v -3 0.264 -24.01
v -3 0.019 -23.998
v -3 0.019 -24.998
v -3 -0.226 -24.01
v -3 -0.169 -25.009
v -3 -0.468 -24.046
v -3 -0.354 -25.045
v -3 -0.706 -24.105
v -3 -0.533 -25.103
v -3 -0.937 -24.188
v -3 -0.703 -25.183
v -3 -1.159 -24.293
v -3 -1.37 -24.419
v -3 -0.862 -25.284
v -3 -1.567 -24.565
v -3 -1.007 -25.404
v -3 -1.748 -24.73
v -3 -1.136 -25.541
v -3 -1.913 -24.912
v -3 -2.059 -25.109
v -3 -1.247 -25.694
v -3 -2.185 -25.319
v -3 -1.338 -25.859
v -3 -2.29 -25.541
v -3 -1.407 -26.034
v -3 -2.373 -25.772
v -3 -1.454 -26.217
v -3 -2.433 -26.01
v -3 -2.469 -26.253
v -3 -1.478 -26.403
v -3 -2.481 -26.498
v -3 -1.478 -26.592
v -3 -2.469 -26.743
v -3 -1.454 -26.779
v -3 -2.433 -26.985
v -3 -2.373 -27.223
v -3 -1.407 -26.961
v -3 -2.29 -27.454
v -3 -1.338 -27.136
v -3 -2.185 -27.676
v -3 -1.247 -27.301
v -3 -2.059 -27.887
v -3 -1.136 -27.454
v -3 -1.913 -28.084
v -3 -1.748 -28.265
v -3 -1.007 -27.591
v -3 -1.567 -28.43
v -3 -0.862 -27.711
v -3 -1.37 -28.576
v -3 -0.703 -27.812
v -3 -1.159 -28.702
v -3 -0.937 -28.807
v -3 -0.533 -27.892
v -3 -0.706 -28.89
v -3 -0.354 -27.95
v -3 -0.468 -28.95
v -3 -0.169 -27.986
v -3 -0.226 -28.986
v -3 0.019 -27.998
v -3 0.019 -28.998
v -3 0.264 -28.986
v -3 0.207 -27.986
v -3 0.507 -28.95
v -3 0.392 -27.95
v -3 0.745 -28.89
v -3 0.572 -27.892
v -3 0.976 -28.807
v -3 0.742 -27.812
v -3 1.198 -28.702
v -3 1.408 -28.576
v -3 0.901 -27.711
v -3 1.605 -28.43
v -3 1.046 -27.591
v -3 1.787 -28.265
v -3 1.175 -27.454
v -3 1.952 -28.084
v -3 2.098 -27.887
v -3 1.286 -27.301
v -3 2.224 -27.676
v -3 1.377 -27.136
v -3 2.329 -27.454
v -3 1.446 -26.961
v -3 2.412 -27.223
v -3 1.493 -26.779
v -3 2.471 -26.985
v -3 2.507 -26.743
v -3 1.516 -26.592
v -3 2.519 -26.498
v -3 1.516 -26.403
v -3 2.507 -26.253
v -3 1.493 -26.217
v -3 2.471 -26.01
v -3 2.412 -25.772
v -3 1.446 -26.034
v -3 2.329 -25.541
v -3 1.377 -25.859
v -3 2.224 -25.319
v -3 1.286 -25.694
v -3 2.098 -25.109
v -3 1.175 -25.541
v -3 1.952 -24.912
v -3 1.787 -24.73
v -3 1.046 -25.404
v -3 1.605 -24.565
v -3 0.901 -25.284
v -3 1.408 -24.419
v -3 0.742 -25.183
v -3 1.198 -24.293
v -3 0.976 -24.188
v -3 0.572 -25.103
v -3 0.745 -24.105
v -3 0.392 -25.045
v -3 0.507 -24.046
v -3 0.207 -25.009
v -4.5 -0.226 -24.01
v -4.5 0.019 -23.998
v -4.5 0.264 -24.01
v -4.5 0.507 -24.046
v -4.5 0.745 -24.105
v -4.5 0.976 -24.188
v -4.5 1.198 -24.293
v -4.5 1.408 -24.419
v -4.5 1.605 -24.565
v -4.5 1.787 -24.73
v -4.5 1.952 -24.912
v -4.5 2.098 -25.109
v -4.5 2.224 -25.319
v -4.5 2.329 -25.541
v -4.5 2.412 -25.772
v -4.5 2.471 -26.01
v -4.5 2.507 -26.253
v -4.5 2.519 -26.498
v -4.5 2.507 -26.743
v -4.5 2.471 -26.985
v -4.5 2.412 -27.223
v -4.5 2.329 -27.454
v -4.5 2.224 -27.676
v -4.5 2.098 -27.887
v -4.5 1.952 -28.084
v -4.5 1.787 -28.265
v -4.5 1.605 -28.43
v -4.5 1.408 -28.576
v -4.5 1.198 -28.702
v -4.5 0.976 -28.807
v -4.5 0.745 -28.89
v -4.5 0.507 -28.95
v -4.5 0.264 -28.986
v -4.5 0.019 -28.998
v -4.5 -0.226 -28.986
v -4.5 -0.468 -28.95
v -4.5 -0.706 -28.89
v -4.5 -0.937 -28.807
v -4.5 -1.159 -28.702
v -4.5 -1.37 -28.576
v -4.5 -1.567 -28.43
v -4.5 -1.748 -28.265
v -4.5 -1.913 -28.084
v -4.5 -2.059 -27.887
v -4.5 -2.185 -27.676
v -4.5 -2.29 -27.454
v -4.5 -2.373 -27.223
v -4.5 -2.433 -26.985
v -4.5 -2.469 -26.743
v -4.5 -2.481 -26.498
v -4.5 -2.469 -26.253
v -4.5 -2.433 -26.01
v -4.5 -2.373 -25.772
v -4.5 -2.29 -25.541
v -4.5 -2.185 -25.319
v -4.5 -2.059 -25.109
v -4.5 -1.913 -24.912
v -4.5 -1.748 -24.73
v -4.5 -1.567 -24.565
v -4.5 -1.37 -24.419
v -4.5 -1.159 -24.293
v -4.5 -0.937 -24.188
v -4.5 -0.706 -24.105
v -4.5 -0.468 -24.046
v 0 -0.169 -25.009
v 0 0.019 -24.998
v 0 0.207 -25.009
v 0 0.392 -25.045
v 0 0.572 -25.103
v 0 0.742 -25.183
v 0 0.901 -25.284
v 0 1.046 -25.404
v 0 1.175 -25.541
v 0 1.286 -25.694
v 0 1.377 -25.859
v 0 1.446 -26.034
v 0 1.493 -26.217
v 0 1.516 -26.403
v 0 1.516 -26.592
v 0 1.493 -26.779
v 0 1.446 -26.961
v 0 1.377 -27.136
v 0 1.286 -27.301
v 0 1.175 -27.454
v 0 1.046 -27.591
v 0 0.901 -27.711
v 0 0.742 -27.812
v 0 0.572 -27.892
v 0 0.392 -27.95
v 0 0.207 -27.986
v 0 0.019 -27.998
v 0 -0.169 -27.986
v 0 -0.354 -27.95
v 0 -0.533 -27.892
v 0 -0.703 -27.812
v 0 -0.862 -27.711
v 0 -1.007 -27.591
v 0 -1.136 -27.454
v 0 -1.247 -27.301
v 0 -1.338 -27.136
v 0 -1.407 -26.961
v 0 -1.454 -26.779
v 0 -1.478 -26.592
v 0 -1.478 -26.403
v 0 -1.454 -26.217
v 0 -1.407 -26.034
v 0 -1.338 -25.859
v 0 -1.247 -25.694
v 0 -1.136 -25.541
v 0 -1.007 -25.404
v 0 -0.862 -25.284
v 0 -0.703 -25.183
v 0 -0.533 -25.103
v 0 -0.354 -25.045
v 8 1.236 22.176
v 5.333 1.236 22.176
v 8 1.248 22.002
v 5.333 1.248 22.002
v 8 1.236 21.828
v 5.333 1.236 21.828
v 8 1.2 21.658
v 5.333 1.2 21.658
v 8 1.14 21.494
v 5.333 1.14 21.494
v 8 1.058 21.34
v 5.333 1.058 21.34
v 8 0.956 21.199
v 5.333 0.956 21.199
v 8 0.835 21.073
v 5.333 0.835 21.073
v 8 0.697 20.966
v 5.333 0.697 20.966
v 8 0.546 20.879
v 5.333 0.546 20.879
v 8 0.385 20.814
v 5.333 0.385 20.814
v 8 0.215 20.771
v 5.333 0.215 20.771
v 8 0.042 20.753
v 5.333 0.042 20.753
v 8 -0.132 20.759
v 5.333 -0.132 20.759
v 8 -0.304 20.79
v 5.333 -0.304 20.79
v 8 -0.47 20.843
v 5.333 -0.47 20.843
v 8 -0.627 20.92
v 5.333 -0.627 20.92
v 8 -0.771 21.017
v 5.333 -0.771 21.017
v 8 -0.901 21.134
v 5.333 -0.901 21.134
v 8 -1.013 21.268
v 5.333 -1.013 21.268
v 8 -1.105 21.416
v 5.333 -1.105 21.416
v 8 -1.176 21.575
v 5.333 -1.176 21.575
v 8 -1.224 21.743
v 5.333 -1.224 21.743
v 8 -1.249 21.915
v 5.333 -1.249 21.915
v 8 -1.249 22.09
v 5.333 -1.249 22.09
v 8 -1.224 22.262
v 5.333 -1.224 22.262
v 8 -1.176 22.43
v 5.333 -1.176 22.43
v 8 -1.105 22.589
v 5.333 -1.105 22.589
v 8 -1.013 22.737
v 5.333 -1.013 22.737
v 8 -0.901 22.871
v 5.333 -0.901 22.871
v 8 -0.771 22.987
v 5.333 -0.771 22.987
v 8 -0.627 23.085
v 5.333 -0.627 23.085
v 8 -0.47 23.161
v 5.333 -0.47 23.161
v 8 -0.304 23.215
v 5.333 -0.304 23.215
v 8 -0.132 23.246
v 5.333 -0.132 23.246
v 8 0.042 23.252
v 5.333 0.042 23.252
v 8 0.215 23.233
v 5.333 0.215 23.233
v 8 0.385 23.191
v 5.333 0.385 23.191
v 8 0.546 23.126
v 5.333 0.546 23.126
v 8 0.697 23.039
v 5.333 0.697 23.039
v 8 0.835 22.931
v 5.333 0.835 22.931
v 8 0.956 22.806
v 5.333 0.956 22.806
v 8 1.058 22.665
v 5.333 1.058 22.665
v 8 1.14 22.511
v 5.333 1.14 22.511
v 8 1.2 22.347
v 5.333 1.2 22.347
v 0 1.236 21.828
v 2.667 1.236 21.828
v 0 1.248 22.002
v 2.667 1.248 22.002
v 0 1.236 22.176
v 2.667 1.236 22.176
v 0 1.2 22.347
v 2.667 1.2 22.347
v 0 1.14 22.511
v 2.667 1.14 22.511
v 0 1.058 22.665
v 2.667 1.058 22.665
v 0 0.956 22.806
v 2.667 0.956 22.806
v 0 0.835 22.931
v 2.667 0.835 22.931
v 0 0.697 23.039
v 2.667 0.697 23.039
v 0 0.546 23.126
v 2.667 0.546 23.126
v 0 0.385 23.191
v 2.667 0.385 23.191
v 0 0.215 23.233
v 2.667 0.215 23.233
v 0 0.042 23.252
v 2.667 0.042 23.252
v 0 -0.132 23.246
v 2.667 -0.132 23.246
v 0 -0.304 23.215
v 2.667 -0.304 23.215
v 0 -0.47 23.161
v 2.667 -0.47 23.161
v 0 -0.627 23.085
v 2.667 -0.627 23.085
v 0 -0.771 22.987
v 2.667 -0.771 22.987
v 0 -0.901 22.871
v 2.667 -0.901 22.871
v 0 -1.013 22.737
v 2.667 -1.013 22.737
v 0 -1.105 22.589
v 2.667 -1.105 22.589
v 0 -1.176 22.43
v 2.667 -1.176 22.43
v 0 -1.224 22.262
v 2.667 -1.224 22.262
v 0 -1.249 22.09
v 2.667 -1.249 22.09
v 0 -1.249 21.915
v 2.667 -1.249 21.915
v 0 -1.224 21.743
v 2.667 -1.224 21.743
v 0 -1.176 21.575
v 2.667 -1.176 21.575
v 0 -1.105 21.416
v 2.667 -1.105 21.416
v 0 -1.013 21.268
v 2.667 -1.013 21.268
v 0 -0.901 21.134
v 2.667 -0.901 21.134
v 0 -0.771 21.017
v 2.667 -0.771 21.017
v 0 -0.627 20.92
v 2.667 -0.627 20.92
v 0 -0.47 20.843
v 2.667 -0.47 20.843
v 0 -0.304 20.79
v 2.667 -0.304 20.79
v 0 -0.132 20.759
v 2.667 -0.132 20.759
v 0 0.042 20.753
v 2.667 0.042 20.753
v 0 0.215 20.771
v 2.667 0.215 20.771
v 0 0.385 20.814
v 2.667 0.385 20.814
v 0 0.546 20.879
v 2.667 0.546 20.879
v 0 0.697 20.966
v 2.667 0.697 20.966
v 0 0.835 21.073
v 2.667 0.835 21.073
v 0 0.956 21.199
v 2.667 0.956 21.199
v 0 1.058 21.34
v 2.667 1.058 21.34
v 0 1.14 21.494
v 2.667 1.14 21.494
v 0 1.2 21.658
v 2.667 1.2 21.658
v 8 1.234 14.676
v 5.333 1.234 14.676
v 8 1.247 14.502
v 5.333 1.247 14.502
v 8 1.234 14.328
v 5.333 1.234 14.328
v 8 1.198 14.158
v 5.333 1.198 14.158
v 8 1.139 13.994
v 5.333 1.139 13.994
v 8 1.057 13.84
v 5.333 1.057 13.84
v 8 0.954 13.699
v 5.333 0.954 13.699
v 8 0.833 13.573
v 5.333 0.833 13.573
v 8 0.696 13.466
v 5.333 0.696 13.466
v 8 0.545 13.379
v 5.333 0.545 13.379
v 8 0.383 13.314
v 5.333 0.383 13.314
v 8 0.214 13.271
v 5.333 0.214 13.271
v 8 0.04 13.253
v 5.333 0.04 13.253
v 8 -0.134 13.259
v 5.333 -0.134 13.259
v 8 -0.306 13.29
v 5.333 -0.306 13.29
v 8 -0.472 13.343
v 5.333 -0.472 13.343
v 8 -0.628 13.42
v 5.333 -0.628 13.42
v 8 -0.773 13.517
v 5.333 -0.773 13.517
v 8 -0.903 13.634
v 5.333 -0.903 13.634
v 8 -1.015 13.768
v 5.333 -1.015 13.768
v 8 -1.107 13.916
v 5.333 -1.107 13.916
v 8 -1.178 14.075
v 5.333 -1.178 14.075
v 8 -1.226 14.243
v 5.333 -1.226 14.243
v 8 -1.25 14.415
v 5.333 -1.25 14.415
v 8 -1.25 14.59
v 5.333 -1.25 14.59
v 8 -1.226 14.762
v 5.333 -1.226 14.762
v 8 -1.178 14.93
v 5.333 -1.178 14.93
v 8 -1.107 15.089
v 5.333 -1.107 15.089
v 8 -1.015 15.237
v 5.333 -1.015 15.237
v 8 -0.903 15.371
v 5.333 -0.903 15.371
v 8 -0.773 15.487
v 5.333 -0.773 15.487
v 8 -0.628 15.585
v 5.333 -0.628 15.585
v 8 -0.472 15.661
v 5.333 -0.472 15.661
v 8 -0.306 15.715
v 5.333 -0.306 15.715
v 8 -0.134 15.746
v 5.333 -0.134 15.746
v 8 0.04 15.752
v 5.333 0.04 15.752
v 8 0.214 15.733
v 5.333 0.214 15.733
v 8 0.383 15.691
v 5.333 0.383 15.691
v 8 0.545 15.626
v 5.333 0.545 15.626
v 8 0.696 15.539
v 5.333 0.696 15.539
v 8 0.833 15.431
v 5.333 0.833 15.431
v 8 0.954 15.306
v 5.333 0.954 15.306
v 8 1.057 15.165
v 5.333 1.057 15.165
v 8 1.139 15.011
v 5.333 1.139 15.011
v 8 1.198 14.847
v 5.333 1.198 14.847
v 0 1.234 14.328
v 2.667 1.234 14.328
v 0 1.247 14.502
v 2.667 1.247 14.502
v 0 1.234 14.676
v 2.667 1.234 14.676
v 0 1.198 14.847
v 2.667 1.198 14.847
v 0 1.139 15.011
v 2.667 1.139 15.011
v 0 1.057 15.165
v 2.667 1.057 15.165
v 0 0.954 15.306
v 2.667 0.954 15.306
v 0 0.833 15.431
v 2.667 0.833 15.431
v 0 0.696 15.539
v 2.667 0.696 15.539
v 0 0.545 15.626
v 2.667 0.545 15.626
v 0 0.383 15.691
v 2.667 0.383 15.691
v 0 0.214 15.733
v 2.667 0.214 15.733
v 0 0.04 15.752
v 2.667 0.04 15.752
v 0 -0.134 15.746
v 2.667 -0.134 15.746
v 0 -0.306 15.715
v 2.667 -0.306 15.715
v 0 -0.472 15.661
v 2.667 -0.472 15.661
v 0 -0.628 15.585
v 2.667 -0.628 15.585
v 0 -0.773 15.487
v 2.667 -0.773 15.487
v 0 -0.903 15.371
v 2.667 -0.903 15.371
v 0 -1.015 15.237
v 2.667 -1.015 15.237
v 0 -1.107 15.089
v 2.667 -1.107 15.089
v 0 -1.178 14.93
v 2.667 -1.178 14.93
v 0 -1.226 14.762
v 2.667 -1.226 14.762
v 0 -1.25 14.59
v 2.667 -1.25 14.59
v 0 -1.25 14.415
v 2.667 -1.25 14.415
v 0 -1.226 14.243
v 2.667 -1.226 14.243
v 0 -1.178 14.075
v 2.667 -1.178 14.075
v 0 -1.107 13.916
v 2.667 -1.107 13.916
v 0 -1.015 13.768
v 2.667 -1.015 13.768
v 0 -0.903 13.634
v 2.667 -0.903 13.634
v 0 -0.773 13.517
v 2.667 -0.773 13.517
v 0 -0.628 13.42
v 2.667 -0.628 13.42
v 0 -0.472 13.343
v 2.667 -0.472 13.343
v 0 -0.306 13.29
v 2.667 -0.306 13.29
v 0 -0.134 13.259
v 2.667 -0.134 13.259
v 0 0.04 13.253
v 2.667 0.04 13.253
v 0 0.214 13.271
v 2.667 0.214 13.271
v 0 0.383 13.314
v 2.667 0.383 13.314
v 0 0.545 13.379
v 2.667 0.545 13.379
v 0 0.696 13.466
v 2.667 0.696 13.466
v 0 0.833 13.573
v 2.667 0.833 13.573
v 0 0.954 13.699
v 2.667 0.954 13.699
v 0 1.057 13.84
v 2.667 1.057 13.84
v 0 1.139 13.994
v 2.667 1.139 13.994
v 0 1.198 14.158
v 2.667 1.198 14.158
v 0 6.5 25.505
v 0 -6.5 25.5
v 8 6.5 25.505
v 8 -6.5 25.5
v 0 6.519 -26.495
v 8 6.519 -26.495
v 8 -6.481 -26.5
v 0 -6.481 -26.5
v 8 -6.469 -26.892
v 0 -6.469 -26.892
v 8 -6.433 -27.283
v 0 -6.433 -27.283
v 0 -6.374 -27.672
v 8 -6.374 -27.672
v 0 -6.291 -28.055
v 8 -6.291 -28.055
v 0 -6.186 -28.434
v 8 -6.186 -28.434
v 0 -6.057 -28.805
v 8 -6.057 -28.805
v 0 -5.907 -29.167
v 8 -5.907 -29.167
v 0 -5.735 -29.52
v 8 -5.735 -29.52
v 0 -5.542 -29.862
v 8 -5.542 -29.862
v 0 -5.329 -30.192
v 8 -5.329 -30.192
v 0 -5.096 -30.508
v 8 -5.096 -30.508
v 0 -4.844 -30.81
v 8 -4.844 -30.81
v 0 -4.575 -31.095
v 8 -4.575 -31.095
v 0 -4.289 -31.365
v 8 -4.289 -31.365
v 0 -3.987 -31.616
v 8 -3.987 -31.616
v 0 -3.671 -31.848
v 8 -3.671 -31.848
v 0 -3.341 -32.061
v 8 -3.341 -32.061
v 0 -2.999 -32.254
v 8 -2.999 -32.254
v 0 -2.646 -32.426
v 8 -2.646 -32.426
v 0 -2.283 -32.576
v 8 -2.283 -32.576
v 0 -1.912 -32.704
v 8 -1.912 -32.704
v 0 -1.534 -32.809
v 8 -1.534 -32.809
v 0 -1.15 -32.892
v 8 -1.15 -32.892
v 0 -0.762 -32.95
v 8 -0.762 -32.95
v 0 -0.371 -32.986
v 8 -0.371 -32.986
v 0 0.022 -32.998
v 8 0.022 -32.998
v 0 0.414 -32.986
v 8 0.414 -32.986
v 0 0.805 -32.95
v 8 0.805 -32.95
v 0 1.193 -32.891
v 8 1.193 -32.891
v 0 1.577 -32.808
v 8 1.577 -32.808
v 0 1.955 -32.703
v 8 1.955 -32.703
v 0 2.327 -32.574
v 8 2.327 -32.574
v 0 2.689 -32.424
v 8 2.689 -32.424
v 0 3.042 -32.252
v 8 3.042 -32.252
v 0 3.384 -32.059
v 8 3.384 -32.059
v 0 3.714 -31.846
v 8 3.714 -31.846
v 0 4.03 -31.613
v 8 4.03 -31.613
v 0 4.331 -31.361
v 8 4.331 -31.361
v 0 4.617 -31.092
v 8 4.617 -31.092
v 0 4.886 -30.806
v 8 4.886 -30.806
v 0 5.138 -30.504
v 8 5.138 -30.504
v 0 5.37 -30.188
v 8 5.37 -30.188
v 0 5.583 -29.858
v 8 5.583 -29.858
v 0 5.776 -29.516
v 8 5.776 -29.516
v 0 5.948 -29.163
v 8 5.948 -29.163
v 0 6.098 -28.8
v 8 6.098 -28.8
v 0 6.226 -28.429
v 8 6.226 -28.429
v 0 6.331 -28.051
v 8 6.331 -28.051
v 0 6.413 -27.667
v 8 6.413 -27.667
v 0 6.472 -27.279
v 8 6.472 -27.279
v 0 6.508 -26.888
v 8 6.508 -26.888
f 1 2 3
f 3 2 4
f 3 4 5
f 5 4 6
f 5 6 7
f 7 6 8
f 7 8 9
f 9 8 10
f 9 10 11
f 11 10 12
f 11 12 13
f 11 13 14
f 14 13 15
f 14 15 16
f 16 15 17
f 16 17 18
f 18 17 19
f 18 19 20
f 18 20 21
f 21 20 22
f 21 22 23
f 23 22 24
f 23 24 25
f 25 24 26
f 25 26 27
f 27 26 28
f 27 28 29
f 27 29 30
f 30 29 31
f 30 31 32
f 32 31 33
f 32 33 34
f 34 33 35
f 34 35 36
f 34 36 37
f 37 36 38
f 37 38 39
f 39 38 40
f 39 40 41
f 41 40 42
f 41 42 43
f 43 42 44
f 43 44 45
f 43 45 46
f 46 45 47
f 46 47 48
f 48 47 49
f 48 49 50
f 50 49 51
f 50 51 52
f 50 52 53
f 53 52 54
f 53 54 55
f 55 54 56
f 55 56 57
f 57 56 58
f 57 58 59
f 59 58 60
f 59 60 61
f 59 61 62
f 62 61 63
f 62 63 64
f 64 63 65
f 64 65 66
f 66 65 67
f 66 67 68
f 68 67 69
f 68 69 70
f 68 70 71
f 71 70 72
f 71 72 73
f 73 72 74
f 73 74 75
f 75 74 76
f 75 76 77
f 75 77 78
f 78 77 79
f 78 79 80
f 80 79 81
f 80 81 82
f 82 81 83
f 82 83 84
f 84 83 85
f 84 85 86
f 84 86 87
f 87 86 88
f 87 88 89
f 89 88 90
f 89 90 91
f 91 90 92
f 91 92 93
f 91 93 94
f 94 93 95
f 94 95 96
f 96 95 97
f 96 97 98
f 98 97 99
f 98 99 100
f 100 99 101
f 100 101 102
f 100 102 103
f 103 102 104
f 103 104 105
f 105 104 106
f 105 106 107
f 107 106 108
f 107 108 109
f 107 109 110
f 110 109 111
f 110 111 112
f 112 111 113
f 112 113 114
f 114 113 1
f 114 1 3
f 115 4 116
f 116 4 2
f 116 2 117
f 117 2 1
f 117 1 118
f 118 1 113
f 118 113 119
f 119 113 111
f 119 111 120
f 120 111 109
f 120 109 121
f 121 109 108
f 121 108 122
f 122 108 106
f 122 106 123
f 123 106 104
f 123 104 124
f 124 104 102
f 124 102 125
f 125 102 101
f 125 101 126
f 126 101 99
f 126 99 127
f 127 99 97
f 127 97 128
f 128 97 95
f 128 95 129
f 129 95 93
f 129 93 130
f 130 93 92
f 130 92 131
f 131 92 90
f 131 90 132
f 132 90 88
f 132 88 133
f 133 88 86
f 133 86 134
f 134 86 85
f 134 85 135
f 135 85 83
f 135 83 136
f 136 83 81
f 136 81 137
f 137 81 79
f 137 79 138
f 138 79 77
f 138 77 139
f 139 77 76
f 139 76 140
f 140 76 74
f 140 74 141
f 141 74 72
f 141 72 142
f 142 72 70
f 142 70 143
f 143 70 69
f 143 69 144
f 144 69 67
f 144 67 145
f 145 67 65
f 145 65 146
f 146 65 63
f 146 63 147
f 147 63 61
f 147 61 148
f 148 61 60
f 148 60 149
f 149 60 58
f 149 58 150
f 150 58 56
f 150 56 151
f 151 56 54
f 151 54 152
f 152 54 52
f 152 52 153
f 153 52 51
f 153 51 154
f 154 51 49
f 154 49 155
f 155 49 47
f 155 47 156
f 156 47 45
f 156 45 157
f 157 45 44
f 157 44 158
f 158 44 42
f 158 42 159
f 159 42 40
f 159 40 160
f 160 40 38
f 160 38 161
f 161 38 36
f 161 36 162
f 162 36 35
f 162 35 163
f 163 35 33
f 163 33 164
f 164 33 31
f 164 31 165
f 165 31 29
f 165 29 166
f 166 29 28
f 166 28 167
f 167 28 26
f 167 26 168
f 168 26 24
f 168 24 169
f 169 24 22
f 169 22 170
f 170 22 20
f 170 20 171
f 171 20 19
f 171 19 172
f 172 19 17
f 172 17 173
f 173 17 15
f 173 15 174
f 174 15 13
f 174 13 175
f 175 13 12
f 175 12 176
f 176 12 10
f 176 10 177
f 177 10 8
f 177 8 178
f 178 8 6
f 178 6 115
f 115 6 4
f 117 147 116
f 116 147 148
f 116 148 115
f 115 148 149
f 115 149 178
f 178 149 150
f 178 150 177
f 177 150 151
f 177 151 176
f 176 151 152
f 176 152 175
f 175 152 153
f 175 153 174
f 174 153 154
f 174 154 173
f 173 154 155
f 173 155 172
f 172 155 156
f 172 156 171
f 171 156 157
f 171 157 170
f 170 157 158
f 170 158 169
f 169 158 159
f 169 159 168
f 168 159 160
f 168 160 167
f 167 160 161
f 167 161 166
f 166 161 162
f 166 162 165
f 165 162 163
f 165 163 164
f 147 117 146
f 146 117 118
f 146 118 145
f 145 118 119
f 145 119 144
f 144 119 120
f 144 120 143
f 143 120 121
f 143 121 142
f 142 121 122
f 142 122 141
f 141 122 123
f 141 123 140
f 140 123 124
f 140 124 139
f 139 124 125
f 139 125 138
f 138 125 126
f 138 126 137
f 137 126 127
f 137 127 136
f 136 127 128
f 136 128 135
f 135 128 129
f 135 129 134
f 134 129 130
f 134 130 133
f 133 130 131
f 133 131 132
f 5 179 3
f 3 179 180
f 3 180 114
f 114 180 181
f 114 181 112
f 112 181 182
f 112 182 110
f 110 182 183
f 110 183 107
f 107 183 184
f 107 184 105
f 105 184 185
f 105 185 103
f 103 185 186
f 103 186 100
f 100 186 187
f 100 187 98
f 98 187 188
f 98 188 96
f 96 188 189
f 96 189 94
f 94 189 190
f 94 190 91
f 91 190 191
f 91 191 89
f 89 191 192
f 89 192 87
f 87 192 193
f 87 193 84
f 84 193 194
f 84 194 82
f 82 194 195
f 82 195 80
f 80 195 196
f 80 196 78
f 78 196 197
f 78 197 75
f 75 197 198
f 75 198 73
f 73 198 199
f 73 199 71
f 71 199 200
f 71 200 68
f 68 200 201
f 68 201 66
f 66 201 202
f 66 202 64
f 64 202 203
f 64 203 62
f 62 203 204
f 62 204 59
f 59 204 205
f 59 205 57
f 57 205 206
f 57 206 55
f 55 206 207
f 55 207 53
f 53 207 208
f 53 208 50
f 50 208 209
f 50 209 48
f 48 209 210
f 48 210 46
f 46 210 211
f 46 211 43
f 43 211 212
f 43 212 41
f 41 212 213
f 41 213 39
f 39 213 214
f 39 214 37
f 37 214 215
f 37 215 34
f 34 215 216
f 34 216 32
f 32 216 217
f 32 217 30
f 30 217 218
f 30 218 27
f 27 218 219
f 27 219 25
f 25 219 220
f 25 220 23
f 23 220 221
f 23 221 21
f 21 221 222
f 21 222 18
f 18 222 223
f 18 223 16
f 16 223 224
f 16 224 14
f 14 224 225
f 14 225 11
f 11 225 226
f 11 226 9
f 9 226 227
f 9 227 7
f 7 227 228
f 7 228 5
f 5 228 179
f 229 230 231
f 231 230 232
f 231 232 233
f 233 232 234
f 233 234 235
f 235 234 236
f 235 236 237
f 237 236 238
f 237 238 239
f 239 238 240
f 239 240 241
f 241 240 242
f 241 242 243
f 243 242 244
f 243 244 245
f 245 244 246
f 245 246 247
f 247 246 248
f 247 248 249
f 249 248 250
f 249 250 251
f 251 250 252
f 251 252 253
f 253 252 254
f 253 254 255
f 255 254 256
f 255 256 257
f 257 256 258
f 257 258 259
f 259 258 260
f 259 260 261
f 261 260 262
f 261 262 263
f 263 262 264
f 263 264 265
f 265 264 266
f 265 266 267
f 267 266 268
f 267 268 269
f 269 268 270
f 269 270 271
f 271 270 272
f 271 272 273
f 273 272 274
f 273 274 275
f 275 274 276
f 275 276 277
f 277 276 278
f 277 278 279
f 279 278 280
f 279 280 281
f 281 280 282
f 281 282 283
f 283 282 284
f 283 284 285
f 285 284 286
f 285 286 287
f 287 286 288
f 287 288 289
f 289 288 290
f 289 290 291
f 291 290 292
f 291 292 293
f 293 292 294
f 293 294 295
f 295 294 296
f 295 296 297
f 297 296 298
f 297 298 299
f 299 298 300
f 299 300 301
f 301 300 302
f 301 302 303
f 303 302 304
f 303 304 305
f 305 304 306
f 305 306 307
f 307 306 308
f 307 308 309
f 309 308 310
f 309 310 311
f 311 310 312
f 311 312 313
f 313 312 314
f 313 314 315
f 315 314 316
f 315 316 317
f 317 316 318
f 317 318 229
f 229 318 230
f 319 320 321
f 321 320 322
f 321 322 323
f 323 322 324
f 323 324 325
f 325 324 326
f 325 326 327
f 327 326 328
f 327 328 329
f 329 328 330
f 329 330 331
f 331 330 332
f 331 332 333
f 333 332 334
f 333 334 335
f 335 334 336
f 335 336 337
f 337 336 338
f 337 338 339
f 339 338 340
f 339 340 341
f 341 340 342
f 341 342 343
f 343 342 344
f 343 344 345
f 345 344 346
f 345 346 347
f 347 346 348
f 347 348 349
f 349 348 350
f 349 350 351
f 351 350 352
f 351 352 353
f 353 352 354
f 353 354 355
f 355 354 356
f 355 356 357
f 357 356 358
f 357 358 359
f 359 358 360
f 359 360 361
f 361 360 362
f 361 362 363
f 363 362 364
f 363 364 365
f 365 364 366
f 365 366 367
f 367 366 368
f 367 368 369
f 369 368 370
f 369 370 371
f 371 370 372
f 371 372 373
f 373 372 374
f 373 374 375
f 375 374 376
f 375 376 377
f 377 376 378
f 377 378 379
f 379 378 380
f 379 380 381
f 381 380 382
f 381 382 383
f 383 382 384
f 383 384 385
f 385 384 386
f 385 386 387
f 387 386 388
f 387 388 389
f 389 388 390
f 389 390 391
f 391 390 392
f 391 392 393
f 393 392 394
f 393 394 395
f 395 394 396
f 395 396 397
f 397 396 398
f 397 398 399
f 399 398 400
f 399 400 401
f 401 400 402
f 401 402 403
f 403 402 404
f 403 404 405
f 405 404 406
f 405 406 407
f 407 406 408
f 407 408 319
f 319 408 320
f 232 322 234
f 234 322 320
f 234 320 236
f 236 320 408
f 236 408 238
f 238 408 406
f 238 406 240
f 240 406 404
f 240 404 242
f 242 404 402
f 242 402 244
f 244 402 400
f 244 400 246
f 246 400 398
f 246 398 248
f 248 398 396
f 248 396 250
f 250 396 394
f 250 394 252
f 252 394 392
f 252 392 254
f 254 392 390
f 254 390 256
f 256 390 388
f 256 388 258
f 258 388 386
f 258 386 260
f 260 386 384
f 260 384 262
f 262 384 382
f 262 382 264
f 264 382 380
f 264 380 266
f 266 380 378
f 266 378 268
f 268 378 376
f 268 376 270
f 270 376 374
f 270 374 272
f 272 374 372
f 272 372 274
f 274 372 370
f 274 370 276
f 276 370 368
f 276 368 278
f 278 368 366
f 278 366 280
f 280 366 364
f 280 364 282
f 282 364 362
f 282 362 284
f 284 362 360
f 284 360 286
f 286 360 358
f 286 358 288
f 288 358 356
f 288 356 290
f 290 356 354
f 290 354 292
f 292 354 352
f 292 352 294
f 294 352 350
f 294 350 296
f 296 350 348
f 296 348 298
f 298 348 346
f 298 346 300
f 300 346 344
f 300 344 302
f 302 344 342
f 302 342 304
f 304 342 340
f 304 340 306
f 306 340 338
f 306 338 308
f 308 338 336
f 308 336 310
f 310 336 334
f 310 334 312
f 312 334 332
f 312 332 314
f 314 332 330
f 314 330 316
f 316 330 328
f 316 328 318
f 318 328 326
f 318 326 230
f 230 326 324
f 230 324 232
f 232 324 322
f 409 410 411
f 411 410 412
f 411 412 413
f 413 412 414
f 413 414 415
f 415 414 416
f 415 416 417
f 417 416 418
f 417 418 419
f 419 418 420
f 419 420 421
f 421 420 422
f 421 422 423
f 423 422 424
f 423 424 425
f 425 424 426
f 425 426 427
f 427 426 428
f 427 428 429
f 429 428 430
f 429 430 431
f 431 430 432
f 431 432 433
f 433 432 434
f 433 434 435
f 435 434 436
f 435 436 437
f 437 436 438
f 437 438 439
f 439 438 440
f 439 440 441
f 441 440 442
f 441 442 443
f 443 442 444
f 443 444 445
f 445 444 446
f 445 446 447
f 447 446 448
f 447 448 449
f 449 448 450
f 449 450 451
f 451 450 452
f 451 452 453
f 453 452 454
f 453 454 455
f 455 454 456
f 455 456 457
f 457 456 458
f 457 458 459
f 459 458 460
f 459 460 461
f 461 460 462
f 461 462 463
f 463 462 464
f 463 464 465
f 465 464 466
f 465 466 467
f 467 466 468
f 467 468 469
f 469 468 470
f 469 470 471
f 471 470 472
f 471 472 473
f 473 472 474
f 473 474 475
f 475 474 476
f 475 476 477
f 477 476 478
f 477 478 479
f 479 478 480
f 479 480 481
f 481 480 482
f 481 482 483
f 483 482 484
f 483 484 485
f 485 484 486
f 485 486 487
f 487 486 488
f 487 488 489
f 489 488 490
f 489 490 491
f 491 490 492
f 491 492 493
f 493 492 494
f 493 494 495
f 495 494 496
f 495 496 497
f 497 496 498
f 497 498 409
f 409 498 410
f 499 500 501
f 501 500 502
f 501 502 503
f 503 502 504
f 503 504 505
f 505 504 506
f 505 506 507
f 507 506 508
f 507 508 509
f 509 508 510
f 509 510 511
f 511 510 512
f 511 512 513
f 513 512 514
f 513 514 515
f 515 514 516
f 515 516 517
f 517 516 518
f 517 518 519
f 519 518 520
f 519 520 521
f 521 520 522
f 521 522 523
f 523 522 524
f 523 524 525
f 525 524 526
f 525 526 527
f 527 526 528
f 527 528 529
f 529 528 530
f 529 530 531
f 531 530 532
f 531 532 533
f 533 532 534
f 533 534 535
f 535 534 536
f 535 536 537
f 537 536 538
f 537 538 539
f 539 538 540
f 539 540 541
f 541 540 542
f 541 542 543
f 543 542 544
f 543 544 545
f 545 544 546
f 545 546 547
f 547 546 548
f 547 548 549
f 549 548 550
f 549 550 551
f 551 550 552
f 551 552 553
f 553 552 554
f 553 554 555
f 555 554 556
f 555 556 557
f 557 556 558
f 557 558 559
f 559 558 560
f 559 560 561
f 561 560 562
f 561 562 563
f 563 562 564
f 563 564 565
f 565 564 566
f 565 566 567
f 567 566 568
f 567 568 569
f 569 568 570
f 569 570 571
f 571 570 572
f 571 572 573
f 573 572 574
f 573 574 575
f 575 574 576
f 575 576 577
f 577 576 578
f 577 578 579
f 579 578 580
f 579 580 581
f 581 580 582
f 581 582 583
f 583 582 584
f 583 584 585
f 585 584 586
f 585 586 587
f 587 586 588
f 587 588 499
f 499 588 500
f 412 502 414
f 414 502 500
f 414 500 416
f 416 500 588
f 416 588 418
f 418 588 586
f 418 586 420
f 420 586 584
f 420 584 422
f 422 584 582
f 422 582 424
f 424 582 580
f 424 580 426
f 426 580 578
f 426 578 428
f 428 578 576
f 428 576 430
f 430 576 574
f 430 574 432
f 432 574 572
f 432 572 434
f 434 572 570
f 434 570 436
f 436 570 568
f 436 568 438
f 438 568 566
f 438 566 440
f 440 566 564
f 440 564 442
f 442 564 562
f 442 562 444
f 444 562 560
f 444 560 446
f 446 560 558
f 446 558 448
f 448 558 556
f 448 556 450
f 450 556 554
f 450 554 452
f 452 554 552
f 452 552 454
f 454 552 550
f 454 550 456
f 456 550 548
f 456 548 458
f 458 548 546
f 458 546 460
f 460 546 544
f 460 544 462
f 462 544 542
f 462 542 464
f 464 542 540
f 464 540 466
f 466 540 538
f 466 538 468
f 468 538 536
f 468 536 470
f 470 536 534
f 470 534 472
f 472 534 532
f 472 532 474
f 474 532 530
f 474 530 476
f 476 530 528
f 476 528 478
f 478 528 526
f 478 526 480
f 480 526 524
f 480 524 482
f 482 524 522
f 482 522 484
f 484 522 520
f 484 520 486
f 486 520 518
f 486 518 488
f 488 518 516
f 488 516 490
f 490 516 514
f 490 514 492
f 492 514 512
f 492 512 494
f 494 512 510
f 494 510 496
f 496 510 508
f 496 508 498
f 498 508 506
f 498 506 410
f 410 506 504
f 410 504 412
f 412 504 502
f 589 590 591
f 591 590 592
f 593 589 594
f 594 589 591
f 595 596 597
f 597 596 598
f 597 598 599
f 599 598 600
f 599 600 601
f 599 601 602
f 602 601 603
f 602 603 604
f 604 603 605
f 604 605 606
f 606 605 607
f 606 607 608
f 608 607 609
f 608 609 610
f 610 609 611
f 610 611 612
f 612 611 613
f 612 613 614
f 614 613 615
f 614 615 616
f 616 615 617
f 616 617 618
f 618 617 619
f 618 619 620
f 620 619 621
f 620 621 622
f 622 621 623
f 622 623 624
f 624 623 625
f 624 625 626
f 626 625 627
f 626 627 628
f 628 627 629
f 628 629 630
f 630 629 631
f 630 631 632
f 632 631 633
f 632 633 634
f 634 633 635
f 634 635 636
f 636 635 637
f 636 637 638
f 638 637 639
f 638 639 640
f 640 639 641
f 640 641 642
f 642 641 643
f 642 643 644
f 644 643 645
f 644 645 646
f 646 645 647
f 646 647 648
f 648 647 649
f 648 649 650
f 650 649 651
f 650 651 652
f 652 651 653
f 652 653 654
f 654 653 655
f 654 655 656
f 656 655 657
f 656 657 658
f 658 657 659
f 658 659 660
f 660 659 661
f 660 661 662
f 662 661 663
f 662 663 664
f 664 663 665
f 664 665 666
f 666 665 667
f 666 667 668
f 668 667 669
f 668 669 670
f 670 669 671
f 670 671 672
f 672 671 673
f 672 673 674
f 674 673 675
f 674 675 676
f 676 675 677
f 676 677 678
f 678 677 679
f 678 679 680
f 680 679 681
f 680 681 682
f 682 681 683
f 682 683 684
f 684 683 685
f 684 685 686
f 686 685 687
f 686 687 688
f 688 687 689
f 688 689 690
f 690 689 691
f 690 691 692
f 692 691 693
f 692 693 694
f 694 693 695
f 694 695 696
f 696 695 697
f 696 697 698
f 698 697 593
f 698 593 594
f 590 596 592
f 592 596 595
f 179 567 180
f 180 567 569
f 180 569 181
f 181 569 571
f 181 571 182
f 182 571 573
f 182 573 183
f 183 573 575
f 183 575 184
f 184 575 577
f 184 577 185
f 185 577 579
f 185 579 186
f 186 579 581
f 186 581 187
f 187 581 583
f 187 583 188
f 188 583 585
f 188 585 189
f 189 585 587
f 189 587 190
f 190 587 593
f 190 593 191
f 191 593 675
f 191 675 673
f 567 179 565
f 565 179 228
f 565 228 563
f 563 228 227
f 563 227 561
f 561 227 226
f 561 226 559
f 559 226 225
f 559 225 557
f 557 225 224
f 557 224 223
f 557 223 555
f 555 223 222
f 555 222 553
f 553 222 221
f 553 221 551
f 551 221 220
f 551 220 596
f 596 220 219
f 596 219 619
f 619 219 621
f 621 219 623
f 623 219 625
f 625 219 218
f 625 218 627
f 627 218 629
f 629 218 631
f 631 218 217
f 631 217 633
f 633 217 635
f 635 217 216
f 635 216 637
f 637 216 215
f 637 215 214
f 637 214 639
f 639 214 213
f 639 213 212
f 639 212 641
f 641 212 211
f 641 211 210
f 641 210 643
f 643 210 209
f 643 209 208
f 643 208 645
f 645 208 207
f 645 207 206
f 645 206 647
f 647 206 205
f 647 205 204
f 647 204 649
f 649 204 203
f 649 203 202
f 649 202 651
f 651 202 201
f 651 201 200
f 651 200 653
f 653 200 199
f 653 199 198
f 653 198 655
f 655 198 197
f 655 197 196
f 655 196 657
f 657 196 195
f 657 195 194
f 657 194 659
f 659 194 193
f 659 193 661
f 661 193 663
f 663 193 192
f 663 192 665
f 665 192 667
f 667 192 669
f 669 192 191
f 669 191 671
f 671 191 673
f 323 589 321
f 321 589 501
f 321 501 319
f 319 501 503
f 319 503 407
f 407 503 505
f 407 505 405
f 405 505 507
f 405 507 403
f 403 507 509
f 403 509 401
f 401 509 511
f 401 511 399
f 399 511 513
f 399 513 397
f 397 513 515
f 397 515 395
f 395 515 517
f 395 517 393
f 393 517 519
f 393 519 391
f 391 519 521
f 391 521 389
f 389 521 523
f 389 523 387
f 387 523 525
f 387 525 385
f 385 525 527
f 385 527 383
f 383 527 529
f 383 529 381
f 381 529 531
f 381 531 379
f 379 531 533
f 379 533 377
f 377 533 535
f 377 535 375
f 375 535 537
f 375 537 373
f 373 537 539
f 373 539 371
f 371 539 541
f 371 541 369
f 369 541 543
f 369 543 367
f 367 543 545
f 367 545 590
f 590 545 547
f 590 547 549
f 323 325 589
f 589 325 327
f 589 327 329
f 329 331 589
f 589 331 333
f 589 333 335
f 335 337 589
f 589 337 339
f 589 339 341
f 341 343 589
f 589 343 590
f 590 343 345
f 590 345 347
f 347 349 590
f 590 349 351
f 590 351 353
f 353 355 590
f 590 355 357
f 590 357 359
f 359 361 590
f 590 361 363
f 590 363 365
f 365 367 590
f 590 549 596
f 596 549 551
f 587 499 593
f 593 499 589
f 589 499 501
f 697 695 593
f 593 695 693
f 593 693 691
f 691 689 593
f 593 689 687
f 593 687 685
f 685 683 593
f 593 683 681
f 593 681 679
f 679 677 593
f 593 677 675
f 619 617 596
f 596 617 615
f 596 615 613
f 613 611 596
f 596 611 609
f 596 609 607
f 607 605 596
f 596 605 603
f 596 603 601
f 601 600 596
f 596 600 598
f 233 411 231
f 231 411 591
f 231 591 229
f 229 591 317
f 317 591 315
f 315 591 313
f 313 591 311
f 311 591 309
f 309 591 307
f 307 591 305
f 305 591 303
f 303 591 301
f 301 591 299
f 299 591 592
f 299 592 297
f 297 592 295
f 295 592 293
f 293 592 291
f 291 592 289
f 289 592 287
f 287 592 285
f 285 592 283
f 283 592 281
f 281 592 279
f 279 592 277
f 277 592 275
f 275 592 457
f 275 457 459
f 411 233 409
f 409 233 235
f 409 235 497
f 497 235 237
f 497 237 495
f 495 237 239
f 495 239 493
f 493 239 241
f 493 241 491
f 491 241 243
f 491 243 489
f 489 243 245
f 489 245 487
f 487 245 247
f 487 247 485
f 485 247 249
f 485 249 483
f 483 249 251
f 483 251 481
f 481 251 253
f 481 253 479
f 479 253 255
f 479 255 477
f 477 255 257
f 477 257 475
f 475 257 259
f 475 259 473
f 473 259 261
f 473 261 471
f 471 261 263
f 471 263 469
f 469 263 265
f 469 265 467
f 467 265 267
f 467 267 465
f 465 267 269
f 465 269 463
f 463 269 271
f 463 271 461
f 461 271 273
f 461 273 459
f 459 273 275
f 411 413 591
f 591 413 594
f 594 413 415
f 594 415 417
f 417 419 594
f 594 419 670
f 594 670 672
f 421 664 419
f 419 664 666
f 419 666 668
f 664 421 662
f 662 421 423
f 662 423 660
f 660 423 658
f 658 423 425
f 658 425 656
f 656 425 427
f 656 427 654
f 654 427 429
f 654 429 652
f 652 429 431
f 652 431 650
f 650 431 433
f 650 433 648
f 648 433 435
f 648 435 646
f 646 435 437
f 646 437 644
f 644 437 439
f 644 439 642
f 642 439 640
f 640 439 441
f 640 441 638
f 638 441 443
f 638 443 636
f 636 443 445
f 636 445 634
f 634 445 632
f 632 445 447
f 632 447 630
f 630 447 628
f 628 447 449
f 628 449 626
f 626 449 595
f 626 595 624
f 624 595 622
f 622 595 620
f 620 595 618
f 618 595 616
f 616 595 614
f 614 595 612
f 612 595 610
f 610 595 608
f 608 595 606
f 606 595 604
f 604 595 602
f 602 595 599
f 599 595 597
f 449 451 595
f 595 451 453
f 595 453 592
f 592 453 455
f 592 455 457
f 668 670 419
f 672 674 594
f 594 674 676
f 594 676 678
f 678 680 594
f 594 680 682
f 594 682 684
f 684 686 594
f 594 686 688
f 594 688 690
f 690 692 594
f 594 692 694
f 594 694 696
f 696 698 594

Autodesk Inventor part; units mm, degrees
ref_plane "YZ Plane" through (0, 0, 0) normal (1, 0, 0) x (0, 1, 0)
ref_plane "XZ Plane" through (0, 0, 0) normal (0, 1, 0) x (-1, 0, 0)
ref_plane "XY Plane" through (0, 0, 0) normal (0, 0, 1) x (1, 0, 0)
sketch "Sketch1" plane through (0, 0, 0) normal (1, 0, 0) x (0, 1, 0)
  line L0 (6.5194, -26.4952) -> (6.5, 25.5048)
  line L1 (6.5, 25.5048) -> (-6.5, 25.5)
  line L2 (-6.5, 25.5) -> (-6.4806, -26.5)
  line L3 (-6.4806, -26.5) -> (6.5, 25.5048) construction
  line L4 (6.5194, -26.4952) -> (-6.5, 25.5) construction
  circle A0 centre (-0.0034, 14.5024) radius 1.25
  arc A1 (-6.4806, -26.5) -> (6.5194, -26.4952) centre (0.0194, -26.4976) ccw
  circle A2 centre (-0.0017, 22.0024) radius 1.25
  dimension "d8" = 13
  dimension "d12" = 2.5
  dimension "d22" = 52
  dimension "d23" = 6.5
  dimension "d24" = 90
  dimension "d25" = 90
  dimension "d26" = 11
  dimension "d27" = 2.5
  dimension "d28" = 7.5
extrude "Extrusion1" add sketch "Sketch1" along normal blind 8
sketch "Sketch2" plane through (0, 0, 0) normal (-1, 0, 0) x (0, 0, 1)
  arc A0 (-26.4952, 6.5194) -> (-26.5, -6.4806) centre (-26.4976, 0.0194) ccw projected
  circle A1 centre (-26.4976, 0.0194) radius 1.5
  point P0 (0, 0)
  dimension "d16" = 3
extrude "Extrusion2" add sketch "Sketch2" along normal blind 3
sketch "Sketch3" plane through (-3, 0.0194, -26.4976) normal (-1, 0, 0) x (0, 0, 1)
  circle A0 centre (0, 0) radius 1.5 projected
  circle A1 centre (0, 0) radius 2.5
  point P0 (26.4976, -0.0194)
  dimension "d19" = 5
extrude "Extrusion3" add sketch "Sketch3" along normal blind 1.5 contours A0 | A1
properties part number "Arm2"
